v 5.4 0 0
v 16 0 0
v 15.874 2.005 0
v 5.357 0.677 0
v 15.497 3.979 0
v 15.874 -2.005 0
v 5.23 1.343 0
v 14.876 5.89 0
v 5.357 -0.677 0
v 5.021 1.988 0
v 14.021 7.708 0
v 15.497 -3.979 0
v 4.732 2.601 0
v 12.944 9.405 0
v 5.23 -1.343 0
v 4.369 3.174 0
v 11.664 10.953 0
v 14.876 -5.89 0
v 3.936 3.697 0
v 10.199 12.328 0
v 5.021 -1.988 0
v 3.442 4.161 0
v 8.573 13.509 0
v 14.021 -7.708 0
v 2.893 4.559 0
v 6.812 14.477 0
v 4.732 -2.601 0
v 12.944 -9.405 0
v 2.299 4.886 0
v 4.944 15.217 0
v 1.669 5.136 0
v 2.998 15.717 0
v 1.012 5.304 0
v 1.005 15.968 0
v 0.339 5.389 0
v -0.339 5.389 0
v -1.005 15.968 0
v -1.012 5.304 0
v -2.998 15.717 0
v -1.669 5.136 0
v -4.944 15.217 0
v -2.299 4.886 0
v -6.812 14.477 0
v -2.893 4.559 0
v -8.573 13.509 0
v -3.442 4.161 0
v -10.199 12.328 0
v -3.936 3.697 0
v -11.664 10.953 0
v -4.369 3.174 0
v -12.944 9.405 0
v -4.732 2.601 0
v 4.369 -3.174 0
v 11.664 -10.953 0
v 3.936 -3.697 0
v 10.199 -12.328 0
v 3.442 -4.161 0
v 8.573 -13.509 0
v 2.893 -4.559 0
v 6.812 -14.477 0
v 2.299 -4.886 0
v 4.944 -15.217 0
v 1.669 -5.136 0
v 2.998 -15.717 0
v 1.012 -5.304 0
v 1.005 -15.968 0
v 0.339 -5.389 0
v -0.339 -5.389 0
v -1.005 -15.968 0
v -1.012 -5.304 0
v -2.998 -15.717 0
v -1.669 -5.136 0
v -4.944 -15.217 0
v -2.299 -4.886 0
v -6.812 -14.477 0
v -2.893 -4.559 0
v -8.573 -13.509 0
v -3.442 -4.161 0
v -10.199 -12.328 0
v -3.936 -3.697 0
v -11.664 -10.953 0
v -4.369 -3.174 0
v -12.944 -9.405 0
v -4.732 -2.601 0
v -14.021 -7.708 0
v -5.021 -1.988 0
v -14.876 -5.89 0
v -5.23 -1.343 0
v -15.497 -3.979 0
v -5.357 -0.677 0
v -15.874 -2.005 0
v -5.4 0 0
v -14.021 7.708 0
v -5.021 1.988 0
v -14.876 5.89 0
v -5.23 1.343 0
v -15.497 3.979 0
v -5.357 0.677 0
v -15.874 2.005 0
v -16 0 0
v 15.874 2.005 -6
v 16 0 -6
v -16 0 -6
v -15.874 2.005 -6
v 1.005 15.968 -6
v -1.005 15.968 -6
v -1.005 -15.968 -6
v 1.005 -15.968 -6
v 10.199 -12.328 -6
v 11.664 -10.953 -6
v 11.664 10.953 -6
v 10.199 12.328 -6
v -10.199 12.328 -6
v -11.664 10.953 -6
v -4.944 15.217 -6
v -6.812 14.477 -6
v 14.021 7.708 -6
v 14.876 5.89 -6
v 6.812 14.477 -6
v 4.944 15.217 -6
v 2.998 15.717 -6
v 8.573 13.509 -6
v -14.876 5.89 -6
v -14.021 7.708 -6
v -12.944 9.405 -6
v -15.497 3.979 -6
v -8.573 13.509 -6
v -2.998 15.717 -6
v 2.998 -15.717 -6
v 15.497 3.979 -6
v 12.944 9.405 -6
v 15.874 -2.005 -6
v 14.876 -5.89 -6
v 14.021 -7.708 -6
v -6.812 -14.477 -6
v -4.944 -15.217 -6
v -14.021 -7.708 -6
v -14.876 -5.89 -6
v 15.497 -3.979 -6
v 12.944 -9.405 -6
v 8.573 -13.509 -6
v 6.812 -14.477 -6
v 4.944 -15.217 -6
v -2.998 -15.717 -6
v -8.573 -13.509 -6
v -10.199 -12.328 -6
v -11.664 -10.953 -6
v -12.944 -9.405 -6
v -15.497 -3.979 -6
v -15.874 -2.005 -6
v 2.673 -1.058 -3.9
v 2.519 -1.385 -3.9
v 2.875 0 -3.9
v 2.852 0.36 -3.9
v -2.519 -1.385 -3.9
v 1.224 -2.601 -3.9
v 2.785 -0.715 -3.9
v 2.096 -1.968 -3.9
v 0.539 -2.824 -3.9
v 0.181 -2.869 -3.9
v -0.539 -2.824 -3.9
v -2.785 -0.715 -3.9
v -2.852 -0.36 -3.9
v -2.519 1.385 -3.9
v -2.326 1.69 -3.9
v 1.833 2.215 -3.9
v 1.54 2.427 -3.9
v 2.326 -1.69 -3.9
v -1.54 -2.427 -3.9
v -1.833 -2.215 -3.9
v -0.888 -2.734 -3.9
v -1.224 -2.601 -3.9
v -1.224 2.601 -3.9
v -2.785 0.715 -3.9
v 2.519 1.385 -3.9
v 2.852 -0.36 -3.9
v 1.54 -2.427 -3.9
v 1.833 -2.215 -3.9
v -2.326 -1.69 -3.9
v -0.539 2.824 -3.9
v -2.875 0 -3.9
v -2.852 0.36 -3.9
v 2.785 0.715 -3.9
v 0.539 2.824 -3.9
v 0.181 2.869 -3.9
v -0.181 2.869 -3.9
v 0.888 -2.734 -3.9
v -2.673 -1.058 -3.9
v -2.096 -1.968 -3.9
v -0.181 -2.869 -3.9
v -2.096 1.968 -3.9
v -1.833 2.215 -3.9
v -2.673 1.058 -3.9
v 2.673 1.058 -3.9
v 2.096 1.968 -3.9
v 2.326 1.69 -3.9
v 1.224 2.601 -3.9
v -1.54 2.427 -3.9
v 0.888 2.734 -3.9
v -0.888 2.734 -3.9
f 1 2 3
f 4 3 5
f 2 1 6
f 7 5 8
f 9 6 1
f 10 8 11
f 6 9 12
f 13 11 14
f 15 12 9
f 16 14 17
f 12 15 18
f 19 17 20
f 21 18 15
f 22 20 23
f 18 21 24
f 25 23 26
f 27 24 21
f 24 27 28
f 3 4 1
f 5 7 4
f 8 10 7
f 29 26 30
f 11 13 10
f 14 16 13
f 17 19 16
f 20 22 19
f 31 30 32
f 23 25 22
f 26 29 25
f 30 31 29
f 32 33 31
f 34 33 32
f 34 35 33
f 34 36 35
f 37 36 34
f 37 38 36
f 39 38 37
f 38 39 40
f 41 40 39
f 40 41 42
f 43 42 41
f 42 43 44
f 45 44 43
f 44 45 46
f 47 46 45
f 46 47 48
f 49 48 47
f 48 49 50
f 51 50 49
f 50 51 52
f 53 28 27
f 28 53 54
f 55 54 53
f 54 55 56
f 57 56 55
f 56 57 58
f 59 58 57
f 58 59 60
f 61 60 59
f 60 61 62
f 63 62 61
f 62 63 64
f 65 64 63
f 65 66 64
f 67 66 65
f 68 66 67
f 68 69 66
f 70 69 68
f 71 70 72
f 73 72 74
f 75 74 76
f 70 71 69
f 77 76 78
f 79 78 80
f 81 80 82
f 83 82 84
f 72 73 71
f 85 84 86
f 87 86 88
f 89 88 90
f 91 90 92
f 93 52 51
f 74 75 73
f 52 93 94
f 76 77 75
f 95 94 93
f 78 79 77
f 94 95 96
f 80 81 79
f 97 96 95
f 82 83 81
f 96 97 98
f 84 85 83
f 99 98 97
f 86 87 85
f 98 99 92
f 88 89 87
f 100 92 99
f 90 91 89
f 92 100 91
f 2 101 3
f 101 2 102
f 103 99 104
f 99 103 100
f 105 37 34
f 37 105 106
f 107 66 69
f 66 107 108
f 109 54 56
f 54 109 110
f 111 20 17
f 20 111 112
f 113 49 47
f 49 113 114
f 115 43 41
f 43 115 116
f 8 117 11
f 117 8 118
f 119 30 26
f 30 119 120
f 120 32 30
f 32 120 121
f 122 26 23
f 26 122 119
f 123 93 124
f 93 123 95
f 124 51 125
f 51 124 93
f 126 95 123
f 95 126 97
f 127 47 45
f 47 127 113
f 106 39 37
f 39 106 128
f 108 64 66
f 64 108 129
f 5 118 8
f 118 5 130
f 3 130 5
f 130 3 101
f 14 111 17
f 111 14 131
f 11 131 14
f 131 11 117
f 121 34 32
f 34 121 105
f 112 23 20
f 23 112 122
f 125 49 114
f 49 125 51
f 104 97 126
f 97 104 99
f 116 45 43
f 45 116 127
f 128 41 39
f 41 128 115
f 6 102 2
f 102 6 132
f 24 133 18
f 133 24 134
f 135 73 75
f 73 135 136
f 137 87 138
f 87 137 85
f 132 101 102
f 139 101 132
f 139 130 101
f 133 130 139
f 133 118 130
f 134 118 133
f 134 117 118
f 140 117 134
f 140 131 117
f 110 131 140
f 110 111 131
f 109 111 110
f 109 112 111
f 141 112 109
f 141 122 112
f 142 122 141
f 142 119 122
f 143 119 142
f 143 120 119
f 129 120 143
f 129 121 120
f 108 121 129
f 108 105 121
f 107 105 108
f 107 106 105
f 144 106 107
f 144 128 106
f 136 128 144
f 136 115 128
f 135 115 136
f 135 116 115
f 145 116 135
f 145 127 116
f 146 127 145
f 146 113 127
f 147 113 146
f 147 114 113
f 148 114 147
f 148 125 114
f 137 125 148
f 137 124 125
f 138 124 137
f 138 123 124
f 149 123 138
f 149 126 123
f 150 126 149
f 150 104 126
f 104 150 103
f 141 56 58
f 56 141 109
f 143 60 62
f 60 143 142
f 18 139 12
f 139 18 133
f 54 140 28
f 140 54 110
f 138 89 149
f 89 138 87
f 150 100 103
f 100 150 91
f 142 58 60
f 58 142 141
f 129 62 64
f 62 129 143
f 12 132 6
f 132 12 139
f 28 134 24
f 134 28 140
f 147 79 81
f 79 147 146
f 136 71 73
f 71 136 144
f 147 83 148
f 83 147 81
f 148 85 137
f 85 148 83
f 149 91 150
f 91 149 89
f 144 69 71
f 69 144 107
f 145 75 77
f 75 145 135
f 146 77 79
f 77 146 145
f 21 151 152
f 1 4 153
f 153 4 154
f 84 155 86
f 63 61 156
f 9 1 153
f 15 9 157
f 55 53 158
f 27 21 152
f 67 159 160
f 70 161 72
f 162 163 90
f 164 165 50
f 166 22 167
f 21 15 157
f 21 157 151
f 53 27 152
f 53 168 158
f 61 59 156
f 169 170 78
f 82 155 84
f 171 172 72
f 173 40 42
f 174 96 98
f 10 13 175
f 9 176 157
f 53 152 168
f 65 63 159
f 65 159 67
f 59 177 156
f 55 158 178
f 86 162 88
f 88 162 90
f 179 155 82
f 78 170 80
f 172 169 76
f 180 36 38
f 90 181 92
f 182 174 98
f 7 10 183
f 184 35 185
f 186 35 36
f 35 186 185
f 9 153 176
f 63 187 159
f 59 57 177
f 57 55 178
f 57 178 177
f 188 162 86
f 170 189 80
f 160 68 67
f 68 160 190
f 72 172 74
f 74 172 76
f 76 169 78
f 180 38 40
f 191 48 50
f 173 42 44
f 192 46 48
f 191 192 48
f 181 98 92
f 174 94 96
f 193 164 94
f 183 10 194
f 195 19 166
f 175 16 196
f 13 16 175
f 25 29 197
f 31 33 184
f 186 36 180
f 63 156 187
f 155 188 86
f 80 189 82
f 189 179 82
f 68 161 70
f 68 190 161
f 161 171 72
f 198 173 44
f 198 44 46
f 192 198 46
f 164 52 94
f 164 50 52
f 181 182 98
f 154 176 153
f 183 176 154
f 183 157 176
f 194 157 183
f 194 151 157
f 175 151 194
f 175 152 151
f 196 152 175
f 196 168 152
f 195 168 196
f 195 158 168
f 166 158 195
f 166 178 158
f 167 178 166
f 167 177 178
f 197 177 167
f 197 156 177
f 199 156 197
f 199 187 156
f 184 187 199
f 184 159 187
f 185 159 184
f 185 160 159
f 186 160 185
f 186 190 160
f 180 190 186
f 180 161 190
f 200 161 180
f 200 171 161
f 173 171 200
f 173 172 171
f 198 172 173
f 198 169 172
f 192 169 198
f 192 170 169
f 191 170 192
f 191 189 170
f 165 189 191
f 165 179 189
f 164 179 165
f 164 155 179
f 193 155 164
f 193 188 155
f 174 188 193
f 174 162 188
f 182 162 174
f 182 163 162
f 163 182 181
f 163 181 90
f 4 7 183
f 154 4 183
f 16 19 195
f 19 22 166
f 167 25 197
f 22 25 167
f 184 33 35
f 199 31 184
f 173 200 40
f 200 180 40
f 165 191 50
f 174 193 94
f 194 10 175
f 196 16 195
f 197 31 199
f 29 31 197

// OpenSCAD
$fn = 50;


difference() {
	union() {
		translate(v = [0, 0, -3.0000000000]) {
			cylinder(h = 3, r = 7.0000000000);
		}
		translate(v = [0, 0, -6.0000000000]) {
			cylinder(h = 6, r = 16.0000000000);
		}
	}
	union() {
		translate(v = [0, 0, 0]) {
			rotate(a = [0, 0, 0]) {
				difference() {
					union() {
						#translate(v = [0, 0, -3.0000000000]) {
							cylinder(h = 3, r = 2.6000000000);
						}
						#translate(v = [0, 0, -3.9000000000]) {
							cylinder(h = 3.9000000000, r = 7.0000000000, r1 = 2.8750000000, r2 = 5.4000000000);
						}
						#translate(v = [0, 0, -3.0000000000]) {
							cylinder(h = 3, r = 2.8750000000);
						}
						#translate(v = [0, 0, -3.0000000000]) {
							cylinder(h = 3, r = 2.6000000000);
						}
					}
					union();
				}
			}
		}
	}
}
